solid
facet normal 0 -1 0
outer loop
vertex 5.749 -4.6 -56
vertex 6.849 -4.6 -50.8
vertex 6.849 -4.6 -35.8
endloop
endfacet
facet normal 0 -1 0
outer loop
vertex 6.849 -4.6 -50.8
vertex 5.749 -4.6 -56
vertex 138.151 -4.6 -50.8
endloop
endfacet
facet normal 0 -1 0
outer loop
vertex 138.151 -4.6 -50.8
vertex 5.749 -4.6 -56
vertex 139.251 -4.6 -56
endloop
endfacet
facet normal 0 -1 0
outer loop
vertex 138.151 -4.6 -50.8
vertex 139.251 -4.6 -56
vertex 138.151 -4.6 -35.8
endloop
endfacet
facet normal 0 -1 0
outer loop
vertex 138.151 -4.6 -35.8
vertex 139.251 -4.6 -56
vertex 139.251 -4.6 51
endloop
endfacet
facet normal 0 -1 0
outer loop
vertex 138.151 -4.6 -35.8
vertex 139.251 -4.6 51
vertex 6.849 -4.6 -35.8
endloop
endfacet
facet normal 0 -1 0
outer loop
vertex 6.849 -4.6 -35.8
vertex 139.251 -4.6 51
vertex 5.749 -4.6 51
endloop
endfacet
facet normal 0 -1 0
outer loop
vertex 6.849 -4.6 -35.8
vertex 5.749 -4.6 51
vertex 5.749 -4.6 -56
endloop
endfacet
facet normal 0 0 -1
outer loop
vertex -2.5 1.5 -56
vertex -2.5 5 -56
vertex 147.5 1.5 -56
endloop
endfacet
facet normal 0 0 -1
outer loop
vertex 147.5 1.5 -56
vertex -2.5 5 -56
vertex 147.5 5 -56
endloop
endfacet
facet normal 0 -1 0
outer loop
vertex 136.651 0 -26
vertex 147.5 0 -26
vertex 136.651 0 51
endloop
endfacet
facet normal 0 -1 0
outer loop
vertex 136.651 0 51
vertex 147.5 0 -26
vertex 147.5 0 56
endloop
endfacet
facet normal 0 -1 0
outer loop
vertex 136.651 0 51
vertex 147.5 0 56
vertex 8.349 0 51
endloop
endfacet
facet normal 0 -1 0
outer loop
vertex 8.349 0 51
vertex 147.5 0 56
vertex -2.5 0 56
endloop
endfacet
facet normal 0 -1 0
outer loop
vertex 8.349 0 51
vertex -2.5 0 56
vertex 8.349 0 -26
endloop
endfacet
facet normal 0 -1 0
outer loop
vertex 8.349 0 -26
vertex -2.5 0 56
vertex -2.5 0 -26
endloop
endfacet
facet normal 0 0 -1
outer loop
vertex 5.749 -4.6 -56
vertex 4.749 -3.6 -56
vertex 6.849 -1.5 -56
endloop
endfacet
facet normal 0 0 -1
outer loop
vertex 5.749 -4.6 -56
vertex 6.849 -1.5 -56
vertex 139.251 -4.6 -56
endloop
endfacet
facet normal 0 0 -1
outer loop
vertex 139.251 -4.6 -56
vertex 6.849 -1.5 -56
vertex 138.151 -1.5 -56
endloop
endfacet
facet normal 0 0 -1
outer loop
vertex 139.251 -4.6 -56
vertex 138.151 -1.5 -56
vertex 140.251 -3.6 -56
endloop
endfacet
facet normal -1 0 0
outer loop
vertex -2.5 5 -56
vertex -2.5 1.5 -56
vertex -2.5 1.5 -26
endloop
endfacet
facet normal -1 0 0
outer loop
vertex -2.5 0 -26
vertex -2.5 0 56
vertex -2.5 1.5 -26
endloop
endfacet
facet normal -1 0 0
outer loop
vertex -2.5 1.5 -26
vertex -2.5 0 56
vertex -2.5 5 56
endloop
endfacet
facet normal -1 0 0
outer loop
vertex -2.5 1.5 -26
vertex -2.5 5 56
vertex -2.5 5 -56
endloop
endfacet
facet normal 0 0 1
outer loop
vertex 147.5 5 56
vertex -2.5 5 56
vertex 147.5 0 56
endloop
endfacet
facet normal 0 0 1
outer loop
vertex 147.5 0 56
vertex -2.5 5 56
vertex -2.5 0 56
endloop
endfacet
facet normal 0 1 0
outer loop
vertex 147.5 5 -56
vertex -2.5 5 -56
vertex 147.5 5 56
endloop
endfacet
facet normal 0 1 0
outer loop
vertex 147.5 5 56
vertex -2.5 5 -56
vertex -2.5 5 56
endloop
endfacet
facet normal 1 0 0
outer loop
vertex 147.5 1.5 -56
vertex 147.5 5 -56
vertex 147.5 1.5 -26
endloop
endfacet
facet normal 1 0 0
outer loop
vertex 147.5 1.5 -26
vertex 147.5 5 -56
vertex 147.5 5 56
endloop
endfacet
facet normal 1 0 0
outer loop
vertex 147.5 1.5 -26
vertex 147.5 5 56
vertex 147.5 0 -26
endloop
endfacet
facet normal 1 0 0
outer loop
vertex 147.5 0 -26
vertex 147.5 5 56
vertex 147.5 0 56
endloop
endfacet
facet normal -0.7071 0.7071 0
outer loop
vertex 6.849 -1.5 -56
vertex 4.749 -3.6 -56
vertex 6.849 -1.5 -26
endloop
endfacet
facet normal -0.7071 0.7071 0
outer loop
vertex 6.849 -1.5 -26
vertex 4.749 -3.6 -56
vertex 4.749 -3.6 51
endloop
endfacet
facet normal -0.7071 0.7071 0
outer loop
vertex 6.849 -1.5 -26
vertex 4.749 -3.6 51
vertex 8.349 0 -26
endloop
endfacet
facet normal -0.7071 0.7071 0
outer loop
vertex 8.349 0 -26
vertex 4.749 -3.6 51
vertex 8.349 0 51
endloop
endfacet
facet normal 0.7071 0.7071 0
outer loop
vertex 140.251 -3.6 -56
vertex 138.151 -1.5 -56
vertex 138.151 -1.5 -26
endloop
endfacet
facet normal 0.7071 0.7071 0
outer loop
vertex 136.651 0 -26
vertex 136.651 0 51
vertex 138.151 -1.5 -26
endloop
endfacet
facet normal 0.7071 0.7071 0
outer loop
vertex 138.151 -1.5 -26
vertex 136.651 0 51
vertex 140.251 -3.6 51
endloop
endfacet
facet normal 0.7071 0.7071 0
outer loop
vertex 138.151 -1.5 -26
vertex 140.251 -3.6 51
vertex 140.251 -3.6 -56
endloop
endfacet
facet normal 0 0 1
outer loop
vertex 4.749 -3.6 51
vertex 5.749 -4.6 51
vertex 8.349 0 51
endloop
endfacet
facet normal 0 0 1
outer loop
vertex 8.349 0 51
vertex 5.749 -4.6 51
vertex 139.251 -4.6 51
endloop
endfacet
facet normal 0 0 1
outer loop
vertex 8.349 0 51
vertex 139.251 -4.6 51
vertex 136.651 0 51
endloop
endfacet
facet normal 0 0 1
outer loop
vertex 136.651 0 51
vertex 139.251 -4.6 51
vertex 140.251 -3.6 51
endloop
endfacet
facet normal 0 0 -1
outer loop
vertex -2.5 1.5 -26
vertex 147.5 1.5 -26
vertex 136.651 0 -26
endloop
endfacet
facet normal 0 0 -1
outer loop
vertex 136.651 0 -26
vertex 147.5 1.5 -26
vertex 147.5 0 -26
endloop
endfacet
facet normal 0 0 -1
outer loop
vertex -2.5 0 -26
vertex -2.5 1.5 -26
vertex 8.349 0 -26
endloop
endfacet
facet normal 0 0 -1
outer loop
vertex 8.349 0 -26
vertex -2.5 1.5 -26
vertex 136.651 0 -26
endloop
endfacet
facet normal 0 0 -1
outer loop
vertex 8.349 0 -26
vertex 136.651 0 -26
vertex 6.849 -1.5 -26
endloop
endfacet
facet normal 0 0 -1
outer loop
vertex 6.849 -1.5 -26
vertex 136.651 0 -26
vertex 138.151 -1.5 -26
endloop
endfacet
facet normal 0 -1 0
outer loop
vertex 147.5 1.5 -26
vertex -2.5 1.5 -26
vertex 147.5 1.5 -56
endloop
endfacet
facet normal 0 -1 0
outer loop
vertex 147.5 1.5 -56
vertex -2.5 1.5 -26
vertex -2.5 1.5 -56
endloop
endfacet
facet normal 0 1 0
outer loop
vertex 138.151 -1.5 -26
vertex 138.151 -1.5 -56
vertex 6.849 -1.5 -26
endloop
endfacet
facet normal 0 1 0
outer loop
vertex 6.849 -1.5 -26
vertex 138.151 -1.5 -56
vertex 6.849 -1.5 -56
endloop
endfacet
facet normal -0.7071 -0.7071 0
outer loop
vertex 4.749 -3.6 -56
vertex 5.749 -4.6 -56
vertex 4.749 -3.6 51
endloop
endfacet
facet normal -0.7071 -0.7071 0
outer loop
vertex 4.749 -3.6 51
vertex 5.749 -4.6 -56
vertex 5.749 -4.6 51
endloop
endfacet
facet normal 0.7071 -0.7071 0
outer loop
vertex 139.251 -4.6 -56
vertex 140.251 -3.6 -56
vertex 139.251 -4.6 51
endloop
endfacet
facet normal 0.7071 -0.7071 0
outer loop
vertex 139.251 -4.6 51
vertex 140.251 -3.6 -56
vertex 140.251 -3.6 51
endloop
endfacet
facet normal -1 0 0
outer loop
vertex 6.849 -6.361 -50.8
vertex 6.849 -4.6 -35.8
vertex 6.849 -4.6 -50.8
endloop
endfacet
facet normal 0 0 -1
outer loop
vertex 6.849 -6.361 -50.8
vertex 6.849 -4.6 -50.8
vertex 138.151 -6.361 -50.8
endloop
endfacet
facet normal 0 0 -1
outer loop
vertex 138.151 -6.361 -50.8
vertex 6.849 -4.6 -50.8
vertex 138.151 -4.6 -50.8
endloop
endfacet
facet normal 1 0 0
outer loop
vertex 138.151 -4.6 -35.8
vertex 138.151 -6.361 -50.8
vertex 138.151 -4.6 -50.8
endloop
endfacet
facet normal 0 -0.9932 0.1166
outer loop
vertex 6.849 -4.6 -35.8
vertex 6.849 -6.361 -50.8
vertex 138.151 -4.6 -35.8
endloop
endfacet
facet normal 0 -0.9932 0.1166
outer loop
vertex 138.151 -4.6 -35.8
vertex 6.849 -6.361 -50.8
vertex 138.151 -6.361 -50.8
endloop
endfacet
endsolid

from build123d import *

# Parameters (mm, degrees)
SKETCH1_W             = 5
SKETCH1_H             = 112
BOSS_EXTRUDE1_DEPTH   = 5
SKETCH2_W             = 112
SKETCH2_H             = 5
BOSS_EXTRUDE2_DEPTH   = 145
BOSS_EXTRUDE3_DEPTH   = 107
SKETCH5_W             = 150
SKETCH5_H             = 3
CUT_EXTRUDE1_DEPTH    = 30
CHAMFER1_SIZE         = 2
CHAMFER1_SIZE2        = 1.414213562
CHAMFER1_EDGE_2_SIZE  = 2
CHAMFER1_EDGE_2_SIZE2 = 1.414213562
SKETCH6_W             = 131.302943726
SKETCH6_H             = 15
BOSS_EXTRUDE4_DEPTH   = 2
CUT_EXTRUDE2_DEPTH    = 131.302943725


with BuildPart() as part:
    # Sketch1 → Boss-Extrude1 (new body)
    with BuildSketch(Plane(origin=(0, 0, 0), x_dir=(1, 0, 0), z_dir=(0, 1, 0))):
        Rectangle(SKETCH1_W, SKETCH1_H)
    extrude(amount=BOSS_EXTRUDE1_DEPTH)

    # Sketch2 → Boss-Extrude2 (add)
    with BuildSketch(Plane(origin=(2.5, 0, 0), x_dir=(0, 0, -1), z_dir=(1, 0, 0))):
        with Locations((0, 2.5)):
            Rectangle(SKETCH2_W, SKETCH2_H)
    extrude(amount=BOSS_EXTRUDE2_DEPTH)

    # Sketch3 → Boss-Extrude3 (add)
    with BuildSketch(Plane(origin=(0, 0, -56), x_dir=(-1, 0, 0), z_dir=(0, 0, -1))):
        Polygon((-136.651471863, 0), (-141.251471863, -4.6), (-3.748528137, -4.6), (-8.348528137, 0), align=None)
    extrude(amount=-BOSS_EXTRUDE3_DEPTH)

    # Sketch5 → Cut-Extrude1 (cut)
    with BuildSketch(Plane(origin=(0, 0, -56), x_dir=(-1, 0, 0), z_dir=(0, 0, -1))):
        with Locations((-72.5, 0)):
            Rectangle(SKETCH5_W, SKETCH5_H)
    extrude(amount=-CUT_EXTRUDE1_DEPTH, mode=Mode.SUBTRACT)

    # Chamfer1
    chamfer1_edges = [part.edges().sort_by_distance(p)[0] for p in [
        (3.748528137, -4.6, -2.5),
    ]]
    chamfer1_side = [part.faces().sort_by_distance(p)[0] for p in [
        (72.5, -4.6, -2.5),
    ]]
    chamfer(chamfer1_edges, length=CHAMFER1_SIZE, length2=CHAMFER1_SIZE2, reference=chamfer1_side[0])

    # Chamfer1 edge 2
    chamfer1_edge_2_edges = [part.edges().sort_by_distance(p)[0] for p in [
        (141.251471863, -4.6, -2.5),
    ]]
    chamfer1_edge_2_side = [part.faces().sort_by_distance(p)[0] for p in [
        (72.5, -4.6, -2.5),
    ]]
    chamfer(chamfer1_edge_2_edges, length=CHAMFER1_EDGE_2_SIZE, length2=CHAMFER1_EDGE_2_SIZE2, reference=chamfer1_edge_2_side[0])

    # Sketch6 → Boss-Extrude4 (add)
    with BuildSketch(Plane.XZ.offset(4.6)):
        with Locations((72.5, -43.3)):
            Rectangle(SKETCH6_W, SKETCH6_H)
    extrude(amount=BOSS_EXTRUDE4_DEPTH)

    # Sketch7 → Cut-Extrude2 (cut)
    with BuildSketch(Plane(origin=(138.151471863, 0, 0), x_dir=(0, 0, -1), z_dir=(1, 0, 0))):
        Polygon((35.8, -4.6), (52.8358392, -6.6), (35.8, -6.6), align=None)
    extrude(amount=-CUT_EXTRUDE2_DEPTH, mode=Mode.SUBTRACT)


solid = part.part
